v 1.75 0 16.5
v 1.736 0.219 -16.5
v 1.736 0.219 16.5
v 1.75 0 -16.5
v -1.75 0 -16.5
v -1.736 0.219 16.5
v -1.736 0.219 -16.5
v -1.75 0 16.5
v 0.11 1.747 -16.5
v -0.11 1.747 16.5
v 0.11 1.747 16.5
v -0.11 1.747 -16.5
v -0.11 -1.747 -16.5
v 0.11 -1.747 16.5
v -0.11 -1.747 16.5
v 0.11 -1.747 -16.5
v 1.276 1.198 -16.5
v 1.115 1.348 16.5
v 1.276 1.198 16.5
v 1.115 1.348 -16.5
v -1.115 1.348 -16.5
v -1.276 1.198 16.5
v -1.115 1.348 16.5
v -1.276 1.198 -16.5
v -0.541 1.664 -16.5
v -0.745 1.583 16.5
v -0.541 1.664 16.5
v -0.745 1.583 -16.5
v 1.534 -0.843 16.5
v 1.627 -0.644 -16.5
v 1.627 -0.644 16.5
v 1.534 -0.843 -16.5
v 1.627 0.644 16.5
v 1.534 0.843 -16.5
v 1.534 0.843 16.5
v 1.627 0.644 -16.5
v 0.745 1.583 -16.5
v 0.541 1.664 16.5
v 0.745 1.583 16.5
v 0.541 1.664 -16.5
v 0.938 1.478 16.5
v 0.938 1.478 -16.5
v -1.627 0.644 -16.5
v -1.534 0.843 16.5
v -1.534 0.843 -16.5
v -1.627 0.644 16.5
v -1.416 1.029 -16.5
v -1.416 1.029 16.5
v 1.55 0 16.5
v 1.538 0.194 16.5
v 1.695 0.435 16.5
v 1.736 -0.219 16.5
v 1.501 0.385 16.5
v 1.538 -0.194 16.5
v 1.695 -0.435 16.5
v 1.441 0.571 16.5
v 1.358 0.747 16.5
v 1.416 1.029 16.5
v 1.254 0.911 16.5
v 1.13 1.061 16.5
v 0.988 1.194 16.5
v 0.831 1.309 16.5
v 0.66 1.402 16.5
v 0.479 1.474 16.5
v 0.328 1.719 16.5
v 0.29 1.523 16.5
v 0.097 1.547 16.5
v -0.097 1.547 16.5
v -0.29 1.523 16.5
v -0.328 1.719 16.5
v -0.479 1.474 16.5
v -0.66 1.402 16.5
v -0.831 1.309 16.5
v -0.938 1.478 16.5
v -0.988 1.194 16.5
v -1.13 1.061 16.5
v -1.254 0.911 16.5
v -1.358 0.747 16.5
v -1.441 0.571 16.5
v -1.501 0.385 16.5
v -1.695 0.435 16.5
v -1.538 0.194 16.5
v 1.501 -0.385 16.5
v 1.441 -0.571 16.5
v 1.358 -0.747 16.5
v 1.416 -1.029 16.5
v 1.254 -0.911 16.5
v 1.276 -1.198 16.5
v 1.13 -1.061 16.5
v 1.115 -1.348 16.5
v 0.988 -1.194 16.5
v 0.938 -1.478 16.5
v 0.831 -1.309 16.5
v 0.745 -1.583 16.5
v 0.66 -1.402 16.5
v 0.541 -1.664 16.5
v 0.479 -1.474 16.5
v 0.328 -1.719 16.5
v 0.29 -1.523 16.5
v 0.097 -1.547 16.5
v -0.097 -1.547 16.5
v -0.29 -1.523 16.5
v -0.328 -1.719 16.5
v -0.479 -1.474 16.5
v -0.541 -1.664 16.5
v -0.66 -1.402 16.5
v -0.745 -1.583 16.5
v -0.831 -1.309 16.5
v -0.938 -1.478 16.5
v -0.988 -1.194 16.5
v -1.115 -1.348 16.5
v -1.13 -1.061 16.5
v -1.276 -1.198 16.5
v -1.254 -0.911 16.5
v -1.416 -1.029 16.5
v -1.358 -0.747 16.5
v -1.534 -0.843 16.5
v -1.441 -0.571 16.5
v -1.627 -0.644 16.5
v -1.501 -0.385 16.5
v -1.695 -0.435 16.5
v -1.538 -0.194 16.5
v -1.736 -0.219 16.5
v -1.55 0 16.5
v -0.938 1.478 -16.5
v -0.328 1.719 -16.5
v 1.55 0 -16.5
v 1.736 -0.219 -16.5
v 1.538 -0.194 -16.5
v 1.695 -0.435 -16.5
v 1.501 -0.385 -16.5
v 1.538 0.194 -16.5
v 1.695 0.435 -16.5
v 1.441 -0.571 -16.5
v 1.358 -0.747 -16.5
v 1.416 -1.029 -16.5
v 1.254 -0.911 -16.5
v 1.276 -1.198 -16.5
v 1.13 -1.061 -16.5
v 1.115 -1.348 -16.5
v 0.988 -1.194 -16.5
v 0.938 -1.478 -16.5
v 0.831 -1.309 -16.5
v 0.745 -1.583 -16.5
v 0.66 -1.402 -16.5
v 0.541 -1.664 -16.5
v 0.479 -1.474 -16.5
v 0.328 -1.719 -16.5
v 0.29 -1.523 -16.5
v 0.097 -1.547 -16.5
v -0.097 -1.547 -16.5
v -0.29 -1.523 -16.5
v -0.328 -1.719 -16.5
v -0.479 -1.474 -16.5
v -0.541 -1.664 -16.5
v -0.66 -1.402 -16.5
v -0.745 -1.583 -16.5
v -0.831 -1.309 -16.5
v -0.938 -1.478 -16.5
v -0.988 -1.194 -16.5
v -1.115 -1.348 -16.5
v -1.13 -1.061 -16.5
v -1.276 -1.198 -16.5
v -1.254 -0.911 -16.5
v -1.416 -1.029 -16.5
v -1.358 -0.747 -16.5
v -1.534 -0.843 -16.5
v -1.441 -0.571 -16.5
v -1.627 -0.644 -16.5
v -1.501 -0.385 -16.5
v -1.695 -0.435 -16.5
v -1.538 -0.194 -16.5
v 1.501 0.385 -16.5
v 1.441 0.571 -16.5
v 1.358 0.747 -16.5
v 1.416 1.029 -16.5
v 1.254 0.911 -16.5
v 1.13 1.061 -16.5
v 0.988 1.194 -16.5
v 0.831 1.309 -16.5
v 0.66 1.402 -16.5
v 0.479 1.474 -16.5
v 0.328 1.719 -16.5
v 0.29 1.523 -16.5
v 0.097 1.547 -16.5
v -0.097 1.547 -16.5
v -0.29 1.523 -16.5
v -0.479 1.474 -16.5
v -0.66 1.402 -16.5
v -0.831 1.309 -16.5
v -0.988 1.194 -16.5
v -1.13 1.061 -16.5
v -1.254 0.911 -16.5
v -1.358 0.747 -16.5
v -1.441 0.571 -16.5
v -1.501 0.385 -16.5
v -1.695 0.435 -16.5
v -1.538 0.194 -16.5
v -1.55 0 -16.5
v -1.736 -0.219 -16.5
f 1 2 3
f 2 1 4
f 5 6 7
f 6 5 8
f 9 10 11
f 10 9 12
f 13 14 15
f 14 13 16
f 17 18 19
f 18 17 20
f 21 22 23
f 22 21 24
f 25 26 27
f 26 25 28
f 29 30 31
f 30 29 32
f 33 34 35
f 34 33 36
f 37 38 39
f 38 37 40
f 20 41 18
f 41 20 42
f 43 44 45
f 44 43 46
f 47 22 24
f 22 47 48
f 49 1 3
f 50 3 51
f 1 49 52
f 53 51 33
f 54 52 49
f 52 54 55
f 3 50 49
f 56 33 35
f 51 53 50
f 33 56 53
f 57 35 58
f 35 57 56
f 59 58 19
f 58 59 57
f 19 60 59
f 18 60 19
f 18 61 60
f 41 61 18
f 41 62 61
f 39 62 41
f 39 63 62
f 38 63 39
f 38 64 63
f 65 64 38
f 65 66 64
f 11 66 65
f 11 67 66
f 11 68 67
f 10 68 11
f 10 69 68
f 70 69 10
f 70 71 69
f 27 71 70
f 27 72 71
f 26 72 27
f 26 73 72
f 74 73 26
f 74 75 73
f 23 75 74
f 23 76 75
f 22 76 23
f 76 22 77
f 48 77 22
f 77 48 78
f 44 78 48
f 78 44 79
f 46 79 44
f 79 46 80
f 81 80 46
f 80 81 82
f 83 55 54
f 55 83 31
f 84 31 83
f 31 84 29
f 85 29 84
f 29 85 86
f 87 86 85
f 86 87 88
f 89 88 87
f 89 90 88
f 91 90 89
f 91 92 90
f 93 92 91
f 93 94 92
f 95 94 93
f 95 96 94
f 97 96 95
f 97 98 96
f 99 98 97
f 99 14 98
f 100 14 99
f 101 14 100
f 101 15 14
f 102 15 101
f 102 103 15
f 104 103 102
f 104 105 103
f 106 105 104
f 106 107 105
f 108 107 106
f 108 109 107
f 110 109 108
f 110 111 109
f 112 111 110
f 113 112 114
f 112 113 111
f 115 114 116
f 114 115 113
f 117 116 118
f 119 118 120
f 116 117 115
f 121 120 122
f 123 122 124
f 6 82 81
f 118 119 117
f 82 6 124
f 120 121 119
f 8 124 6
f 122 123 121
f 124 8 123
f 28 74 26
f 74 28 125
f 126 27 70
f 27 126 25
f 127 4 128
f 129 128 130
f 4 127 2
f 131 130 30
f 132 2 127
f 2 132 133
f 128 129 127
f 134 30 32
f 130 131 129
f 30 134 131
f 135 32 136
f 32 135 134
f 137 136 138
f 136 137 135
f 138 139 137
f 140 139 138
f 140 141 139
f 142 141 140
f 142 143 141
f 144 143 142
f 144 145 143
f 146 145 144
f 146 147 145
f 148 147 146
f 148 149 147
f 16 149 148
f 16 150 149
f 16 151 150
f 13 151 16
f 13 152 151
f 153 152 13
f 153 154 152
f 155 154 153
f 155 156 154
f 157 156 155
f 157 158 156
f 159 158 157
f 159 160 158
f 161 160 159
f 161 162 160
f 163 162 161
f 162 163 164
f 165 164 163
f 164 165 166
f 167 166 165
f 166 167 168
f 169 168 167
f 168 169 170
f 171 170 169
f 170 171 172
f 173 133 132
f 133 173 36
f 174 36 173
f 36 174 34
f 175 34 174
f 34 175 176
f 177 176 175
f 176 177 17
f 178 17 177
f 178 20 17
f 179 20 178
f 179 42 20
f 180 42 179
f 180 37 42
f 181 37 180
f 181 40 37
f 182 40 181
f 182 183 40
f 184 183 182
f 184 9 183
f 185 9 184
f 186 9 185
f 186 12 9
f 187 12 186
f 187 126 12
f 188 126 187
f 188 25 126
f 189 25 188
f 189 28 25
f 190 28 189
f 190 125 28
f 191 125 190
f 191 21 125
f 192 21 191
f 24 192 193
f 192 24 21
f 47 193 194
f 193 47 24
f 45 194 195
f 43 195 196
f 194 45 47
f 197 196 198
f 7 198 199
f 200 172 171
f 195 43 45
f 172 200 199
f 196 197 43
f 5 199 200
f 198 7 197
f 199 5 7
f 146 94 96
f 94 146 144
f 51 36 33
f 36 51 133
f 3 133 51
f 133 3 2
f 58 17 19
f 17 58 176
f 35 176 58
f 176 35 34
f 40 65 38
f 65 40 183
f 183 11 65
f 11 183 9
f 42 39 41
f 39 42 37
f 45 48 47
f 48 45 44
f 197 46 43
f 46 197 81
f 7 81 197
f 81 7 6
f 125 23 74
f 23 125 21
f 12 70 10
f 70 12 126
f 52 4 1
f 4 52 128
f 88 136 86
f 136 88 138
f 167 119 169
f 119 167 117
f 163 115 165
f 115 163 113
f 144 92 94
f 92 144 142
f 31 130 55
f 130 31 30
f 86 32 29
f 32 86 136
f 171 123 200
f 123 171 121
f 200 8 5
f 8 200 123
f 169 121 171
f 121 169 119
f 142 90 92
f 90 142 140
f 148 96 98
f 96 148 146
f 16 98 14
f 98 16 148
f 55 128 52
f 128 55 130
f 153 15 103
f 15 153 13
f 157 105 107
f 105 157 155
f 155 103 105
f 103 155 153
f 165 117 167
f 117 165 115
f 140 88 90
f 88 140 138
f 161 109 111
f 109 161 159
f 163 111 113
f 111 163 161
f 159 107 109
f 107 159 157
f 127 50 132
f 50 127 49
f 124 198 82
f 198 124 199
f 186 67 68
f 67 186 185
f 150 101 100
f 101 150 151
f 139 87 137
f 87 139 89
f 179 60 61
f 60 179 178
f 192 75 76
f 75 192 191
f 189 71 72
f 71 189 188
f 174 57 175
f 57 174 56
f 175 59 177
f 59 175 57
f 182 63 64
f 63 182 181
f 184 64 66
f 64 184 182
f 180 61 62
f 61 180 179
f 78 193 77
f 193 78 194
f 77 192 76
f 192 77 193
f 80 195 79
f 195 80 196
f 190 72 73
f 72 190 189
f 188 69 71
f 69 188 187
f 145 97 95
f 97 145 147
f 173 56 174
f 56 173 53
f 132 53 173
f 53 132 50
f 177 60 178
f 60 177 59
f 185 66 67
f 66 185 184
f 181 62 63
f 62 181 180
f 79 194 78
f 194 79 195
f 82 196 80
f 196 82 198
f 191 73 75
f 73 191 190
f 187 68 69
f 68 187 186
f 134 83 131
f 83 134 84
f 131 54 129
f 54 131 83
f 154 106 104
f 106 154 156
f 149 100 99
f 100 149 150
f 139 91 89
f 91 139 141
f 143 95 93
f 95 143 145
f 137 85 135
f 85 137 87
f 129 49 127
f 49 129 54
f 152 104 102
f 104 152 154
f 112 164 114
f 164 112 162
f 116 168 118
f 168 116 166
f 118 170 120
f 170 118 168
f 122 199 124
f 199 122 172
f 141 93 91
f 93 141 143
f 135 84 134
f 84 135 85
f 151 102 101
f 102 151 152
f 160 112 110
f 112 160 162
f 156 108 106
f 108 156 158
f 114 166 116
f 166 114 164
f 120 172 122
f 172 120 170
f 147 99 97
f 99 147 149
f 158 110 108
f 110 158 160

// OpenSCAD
$fn = 50;


difference() {
	union() {
		translate(v = [0, 0, -16.5000000000]) {
			cylinder(h = 33, r = 1.7500000000);
		}
	}
	union() {
		translate(v = [0, 0, -100.0000000000]) {
			cylinder(h = 200, r = 1.5500000000);
		}
	}
}
